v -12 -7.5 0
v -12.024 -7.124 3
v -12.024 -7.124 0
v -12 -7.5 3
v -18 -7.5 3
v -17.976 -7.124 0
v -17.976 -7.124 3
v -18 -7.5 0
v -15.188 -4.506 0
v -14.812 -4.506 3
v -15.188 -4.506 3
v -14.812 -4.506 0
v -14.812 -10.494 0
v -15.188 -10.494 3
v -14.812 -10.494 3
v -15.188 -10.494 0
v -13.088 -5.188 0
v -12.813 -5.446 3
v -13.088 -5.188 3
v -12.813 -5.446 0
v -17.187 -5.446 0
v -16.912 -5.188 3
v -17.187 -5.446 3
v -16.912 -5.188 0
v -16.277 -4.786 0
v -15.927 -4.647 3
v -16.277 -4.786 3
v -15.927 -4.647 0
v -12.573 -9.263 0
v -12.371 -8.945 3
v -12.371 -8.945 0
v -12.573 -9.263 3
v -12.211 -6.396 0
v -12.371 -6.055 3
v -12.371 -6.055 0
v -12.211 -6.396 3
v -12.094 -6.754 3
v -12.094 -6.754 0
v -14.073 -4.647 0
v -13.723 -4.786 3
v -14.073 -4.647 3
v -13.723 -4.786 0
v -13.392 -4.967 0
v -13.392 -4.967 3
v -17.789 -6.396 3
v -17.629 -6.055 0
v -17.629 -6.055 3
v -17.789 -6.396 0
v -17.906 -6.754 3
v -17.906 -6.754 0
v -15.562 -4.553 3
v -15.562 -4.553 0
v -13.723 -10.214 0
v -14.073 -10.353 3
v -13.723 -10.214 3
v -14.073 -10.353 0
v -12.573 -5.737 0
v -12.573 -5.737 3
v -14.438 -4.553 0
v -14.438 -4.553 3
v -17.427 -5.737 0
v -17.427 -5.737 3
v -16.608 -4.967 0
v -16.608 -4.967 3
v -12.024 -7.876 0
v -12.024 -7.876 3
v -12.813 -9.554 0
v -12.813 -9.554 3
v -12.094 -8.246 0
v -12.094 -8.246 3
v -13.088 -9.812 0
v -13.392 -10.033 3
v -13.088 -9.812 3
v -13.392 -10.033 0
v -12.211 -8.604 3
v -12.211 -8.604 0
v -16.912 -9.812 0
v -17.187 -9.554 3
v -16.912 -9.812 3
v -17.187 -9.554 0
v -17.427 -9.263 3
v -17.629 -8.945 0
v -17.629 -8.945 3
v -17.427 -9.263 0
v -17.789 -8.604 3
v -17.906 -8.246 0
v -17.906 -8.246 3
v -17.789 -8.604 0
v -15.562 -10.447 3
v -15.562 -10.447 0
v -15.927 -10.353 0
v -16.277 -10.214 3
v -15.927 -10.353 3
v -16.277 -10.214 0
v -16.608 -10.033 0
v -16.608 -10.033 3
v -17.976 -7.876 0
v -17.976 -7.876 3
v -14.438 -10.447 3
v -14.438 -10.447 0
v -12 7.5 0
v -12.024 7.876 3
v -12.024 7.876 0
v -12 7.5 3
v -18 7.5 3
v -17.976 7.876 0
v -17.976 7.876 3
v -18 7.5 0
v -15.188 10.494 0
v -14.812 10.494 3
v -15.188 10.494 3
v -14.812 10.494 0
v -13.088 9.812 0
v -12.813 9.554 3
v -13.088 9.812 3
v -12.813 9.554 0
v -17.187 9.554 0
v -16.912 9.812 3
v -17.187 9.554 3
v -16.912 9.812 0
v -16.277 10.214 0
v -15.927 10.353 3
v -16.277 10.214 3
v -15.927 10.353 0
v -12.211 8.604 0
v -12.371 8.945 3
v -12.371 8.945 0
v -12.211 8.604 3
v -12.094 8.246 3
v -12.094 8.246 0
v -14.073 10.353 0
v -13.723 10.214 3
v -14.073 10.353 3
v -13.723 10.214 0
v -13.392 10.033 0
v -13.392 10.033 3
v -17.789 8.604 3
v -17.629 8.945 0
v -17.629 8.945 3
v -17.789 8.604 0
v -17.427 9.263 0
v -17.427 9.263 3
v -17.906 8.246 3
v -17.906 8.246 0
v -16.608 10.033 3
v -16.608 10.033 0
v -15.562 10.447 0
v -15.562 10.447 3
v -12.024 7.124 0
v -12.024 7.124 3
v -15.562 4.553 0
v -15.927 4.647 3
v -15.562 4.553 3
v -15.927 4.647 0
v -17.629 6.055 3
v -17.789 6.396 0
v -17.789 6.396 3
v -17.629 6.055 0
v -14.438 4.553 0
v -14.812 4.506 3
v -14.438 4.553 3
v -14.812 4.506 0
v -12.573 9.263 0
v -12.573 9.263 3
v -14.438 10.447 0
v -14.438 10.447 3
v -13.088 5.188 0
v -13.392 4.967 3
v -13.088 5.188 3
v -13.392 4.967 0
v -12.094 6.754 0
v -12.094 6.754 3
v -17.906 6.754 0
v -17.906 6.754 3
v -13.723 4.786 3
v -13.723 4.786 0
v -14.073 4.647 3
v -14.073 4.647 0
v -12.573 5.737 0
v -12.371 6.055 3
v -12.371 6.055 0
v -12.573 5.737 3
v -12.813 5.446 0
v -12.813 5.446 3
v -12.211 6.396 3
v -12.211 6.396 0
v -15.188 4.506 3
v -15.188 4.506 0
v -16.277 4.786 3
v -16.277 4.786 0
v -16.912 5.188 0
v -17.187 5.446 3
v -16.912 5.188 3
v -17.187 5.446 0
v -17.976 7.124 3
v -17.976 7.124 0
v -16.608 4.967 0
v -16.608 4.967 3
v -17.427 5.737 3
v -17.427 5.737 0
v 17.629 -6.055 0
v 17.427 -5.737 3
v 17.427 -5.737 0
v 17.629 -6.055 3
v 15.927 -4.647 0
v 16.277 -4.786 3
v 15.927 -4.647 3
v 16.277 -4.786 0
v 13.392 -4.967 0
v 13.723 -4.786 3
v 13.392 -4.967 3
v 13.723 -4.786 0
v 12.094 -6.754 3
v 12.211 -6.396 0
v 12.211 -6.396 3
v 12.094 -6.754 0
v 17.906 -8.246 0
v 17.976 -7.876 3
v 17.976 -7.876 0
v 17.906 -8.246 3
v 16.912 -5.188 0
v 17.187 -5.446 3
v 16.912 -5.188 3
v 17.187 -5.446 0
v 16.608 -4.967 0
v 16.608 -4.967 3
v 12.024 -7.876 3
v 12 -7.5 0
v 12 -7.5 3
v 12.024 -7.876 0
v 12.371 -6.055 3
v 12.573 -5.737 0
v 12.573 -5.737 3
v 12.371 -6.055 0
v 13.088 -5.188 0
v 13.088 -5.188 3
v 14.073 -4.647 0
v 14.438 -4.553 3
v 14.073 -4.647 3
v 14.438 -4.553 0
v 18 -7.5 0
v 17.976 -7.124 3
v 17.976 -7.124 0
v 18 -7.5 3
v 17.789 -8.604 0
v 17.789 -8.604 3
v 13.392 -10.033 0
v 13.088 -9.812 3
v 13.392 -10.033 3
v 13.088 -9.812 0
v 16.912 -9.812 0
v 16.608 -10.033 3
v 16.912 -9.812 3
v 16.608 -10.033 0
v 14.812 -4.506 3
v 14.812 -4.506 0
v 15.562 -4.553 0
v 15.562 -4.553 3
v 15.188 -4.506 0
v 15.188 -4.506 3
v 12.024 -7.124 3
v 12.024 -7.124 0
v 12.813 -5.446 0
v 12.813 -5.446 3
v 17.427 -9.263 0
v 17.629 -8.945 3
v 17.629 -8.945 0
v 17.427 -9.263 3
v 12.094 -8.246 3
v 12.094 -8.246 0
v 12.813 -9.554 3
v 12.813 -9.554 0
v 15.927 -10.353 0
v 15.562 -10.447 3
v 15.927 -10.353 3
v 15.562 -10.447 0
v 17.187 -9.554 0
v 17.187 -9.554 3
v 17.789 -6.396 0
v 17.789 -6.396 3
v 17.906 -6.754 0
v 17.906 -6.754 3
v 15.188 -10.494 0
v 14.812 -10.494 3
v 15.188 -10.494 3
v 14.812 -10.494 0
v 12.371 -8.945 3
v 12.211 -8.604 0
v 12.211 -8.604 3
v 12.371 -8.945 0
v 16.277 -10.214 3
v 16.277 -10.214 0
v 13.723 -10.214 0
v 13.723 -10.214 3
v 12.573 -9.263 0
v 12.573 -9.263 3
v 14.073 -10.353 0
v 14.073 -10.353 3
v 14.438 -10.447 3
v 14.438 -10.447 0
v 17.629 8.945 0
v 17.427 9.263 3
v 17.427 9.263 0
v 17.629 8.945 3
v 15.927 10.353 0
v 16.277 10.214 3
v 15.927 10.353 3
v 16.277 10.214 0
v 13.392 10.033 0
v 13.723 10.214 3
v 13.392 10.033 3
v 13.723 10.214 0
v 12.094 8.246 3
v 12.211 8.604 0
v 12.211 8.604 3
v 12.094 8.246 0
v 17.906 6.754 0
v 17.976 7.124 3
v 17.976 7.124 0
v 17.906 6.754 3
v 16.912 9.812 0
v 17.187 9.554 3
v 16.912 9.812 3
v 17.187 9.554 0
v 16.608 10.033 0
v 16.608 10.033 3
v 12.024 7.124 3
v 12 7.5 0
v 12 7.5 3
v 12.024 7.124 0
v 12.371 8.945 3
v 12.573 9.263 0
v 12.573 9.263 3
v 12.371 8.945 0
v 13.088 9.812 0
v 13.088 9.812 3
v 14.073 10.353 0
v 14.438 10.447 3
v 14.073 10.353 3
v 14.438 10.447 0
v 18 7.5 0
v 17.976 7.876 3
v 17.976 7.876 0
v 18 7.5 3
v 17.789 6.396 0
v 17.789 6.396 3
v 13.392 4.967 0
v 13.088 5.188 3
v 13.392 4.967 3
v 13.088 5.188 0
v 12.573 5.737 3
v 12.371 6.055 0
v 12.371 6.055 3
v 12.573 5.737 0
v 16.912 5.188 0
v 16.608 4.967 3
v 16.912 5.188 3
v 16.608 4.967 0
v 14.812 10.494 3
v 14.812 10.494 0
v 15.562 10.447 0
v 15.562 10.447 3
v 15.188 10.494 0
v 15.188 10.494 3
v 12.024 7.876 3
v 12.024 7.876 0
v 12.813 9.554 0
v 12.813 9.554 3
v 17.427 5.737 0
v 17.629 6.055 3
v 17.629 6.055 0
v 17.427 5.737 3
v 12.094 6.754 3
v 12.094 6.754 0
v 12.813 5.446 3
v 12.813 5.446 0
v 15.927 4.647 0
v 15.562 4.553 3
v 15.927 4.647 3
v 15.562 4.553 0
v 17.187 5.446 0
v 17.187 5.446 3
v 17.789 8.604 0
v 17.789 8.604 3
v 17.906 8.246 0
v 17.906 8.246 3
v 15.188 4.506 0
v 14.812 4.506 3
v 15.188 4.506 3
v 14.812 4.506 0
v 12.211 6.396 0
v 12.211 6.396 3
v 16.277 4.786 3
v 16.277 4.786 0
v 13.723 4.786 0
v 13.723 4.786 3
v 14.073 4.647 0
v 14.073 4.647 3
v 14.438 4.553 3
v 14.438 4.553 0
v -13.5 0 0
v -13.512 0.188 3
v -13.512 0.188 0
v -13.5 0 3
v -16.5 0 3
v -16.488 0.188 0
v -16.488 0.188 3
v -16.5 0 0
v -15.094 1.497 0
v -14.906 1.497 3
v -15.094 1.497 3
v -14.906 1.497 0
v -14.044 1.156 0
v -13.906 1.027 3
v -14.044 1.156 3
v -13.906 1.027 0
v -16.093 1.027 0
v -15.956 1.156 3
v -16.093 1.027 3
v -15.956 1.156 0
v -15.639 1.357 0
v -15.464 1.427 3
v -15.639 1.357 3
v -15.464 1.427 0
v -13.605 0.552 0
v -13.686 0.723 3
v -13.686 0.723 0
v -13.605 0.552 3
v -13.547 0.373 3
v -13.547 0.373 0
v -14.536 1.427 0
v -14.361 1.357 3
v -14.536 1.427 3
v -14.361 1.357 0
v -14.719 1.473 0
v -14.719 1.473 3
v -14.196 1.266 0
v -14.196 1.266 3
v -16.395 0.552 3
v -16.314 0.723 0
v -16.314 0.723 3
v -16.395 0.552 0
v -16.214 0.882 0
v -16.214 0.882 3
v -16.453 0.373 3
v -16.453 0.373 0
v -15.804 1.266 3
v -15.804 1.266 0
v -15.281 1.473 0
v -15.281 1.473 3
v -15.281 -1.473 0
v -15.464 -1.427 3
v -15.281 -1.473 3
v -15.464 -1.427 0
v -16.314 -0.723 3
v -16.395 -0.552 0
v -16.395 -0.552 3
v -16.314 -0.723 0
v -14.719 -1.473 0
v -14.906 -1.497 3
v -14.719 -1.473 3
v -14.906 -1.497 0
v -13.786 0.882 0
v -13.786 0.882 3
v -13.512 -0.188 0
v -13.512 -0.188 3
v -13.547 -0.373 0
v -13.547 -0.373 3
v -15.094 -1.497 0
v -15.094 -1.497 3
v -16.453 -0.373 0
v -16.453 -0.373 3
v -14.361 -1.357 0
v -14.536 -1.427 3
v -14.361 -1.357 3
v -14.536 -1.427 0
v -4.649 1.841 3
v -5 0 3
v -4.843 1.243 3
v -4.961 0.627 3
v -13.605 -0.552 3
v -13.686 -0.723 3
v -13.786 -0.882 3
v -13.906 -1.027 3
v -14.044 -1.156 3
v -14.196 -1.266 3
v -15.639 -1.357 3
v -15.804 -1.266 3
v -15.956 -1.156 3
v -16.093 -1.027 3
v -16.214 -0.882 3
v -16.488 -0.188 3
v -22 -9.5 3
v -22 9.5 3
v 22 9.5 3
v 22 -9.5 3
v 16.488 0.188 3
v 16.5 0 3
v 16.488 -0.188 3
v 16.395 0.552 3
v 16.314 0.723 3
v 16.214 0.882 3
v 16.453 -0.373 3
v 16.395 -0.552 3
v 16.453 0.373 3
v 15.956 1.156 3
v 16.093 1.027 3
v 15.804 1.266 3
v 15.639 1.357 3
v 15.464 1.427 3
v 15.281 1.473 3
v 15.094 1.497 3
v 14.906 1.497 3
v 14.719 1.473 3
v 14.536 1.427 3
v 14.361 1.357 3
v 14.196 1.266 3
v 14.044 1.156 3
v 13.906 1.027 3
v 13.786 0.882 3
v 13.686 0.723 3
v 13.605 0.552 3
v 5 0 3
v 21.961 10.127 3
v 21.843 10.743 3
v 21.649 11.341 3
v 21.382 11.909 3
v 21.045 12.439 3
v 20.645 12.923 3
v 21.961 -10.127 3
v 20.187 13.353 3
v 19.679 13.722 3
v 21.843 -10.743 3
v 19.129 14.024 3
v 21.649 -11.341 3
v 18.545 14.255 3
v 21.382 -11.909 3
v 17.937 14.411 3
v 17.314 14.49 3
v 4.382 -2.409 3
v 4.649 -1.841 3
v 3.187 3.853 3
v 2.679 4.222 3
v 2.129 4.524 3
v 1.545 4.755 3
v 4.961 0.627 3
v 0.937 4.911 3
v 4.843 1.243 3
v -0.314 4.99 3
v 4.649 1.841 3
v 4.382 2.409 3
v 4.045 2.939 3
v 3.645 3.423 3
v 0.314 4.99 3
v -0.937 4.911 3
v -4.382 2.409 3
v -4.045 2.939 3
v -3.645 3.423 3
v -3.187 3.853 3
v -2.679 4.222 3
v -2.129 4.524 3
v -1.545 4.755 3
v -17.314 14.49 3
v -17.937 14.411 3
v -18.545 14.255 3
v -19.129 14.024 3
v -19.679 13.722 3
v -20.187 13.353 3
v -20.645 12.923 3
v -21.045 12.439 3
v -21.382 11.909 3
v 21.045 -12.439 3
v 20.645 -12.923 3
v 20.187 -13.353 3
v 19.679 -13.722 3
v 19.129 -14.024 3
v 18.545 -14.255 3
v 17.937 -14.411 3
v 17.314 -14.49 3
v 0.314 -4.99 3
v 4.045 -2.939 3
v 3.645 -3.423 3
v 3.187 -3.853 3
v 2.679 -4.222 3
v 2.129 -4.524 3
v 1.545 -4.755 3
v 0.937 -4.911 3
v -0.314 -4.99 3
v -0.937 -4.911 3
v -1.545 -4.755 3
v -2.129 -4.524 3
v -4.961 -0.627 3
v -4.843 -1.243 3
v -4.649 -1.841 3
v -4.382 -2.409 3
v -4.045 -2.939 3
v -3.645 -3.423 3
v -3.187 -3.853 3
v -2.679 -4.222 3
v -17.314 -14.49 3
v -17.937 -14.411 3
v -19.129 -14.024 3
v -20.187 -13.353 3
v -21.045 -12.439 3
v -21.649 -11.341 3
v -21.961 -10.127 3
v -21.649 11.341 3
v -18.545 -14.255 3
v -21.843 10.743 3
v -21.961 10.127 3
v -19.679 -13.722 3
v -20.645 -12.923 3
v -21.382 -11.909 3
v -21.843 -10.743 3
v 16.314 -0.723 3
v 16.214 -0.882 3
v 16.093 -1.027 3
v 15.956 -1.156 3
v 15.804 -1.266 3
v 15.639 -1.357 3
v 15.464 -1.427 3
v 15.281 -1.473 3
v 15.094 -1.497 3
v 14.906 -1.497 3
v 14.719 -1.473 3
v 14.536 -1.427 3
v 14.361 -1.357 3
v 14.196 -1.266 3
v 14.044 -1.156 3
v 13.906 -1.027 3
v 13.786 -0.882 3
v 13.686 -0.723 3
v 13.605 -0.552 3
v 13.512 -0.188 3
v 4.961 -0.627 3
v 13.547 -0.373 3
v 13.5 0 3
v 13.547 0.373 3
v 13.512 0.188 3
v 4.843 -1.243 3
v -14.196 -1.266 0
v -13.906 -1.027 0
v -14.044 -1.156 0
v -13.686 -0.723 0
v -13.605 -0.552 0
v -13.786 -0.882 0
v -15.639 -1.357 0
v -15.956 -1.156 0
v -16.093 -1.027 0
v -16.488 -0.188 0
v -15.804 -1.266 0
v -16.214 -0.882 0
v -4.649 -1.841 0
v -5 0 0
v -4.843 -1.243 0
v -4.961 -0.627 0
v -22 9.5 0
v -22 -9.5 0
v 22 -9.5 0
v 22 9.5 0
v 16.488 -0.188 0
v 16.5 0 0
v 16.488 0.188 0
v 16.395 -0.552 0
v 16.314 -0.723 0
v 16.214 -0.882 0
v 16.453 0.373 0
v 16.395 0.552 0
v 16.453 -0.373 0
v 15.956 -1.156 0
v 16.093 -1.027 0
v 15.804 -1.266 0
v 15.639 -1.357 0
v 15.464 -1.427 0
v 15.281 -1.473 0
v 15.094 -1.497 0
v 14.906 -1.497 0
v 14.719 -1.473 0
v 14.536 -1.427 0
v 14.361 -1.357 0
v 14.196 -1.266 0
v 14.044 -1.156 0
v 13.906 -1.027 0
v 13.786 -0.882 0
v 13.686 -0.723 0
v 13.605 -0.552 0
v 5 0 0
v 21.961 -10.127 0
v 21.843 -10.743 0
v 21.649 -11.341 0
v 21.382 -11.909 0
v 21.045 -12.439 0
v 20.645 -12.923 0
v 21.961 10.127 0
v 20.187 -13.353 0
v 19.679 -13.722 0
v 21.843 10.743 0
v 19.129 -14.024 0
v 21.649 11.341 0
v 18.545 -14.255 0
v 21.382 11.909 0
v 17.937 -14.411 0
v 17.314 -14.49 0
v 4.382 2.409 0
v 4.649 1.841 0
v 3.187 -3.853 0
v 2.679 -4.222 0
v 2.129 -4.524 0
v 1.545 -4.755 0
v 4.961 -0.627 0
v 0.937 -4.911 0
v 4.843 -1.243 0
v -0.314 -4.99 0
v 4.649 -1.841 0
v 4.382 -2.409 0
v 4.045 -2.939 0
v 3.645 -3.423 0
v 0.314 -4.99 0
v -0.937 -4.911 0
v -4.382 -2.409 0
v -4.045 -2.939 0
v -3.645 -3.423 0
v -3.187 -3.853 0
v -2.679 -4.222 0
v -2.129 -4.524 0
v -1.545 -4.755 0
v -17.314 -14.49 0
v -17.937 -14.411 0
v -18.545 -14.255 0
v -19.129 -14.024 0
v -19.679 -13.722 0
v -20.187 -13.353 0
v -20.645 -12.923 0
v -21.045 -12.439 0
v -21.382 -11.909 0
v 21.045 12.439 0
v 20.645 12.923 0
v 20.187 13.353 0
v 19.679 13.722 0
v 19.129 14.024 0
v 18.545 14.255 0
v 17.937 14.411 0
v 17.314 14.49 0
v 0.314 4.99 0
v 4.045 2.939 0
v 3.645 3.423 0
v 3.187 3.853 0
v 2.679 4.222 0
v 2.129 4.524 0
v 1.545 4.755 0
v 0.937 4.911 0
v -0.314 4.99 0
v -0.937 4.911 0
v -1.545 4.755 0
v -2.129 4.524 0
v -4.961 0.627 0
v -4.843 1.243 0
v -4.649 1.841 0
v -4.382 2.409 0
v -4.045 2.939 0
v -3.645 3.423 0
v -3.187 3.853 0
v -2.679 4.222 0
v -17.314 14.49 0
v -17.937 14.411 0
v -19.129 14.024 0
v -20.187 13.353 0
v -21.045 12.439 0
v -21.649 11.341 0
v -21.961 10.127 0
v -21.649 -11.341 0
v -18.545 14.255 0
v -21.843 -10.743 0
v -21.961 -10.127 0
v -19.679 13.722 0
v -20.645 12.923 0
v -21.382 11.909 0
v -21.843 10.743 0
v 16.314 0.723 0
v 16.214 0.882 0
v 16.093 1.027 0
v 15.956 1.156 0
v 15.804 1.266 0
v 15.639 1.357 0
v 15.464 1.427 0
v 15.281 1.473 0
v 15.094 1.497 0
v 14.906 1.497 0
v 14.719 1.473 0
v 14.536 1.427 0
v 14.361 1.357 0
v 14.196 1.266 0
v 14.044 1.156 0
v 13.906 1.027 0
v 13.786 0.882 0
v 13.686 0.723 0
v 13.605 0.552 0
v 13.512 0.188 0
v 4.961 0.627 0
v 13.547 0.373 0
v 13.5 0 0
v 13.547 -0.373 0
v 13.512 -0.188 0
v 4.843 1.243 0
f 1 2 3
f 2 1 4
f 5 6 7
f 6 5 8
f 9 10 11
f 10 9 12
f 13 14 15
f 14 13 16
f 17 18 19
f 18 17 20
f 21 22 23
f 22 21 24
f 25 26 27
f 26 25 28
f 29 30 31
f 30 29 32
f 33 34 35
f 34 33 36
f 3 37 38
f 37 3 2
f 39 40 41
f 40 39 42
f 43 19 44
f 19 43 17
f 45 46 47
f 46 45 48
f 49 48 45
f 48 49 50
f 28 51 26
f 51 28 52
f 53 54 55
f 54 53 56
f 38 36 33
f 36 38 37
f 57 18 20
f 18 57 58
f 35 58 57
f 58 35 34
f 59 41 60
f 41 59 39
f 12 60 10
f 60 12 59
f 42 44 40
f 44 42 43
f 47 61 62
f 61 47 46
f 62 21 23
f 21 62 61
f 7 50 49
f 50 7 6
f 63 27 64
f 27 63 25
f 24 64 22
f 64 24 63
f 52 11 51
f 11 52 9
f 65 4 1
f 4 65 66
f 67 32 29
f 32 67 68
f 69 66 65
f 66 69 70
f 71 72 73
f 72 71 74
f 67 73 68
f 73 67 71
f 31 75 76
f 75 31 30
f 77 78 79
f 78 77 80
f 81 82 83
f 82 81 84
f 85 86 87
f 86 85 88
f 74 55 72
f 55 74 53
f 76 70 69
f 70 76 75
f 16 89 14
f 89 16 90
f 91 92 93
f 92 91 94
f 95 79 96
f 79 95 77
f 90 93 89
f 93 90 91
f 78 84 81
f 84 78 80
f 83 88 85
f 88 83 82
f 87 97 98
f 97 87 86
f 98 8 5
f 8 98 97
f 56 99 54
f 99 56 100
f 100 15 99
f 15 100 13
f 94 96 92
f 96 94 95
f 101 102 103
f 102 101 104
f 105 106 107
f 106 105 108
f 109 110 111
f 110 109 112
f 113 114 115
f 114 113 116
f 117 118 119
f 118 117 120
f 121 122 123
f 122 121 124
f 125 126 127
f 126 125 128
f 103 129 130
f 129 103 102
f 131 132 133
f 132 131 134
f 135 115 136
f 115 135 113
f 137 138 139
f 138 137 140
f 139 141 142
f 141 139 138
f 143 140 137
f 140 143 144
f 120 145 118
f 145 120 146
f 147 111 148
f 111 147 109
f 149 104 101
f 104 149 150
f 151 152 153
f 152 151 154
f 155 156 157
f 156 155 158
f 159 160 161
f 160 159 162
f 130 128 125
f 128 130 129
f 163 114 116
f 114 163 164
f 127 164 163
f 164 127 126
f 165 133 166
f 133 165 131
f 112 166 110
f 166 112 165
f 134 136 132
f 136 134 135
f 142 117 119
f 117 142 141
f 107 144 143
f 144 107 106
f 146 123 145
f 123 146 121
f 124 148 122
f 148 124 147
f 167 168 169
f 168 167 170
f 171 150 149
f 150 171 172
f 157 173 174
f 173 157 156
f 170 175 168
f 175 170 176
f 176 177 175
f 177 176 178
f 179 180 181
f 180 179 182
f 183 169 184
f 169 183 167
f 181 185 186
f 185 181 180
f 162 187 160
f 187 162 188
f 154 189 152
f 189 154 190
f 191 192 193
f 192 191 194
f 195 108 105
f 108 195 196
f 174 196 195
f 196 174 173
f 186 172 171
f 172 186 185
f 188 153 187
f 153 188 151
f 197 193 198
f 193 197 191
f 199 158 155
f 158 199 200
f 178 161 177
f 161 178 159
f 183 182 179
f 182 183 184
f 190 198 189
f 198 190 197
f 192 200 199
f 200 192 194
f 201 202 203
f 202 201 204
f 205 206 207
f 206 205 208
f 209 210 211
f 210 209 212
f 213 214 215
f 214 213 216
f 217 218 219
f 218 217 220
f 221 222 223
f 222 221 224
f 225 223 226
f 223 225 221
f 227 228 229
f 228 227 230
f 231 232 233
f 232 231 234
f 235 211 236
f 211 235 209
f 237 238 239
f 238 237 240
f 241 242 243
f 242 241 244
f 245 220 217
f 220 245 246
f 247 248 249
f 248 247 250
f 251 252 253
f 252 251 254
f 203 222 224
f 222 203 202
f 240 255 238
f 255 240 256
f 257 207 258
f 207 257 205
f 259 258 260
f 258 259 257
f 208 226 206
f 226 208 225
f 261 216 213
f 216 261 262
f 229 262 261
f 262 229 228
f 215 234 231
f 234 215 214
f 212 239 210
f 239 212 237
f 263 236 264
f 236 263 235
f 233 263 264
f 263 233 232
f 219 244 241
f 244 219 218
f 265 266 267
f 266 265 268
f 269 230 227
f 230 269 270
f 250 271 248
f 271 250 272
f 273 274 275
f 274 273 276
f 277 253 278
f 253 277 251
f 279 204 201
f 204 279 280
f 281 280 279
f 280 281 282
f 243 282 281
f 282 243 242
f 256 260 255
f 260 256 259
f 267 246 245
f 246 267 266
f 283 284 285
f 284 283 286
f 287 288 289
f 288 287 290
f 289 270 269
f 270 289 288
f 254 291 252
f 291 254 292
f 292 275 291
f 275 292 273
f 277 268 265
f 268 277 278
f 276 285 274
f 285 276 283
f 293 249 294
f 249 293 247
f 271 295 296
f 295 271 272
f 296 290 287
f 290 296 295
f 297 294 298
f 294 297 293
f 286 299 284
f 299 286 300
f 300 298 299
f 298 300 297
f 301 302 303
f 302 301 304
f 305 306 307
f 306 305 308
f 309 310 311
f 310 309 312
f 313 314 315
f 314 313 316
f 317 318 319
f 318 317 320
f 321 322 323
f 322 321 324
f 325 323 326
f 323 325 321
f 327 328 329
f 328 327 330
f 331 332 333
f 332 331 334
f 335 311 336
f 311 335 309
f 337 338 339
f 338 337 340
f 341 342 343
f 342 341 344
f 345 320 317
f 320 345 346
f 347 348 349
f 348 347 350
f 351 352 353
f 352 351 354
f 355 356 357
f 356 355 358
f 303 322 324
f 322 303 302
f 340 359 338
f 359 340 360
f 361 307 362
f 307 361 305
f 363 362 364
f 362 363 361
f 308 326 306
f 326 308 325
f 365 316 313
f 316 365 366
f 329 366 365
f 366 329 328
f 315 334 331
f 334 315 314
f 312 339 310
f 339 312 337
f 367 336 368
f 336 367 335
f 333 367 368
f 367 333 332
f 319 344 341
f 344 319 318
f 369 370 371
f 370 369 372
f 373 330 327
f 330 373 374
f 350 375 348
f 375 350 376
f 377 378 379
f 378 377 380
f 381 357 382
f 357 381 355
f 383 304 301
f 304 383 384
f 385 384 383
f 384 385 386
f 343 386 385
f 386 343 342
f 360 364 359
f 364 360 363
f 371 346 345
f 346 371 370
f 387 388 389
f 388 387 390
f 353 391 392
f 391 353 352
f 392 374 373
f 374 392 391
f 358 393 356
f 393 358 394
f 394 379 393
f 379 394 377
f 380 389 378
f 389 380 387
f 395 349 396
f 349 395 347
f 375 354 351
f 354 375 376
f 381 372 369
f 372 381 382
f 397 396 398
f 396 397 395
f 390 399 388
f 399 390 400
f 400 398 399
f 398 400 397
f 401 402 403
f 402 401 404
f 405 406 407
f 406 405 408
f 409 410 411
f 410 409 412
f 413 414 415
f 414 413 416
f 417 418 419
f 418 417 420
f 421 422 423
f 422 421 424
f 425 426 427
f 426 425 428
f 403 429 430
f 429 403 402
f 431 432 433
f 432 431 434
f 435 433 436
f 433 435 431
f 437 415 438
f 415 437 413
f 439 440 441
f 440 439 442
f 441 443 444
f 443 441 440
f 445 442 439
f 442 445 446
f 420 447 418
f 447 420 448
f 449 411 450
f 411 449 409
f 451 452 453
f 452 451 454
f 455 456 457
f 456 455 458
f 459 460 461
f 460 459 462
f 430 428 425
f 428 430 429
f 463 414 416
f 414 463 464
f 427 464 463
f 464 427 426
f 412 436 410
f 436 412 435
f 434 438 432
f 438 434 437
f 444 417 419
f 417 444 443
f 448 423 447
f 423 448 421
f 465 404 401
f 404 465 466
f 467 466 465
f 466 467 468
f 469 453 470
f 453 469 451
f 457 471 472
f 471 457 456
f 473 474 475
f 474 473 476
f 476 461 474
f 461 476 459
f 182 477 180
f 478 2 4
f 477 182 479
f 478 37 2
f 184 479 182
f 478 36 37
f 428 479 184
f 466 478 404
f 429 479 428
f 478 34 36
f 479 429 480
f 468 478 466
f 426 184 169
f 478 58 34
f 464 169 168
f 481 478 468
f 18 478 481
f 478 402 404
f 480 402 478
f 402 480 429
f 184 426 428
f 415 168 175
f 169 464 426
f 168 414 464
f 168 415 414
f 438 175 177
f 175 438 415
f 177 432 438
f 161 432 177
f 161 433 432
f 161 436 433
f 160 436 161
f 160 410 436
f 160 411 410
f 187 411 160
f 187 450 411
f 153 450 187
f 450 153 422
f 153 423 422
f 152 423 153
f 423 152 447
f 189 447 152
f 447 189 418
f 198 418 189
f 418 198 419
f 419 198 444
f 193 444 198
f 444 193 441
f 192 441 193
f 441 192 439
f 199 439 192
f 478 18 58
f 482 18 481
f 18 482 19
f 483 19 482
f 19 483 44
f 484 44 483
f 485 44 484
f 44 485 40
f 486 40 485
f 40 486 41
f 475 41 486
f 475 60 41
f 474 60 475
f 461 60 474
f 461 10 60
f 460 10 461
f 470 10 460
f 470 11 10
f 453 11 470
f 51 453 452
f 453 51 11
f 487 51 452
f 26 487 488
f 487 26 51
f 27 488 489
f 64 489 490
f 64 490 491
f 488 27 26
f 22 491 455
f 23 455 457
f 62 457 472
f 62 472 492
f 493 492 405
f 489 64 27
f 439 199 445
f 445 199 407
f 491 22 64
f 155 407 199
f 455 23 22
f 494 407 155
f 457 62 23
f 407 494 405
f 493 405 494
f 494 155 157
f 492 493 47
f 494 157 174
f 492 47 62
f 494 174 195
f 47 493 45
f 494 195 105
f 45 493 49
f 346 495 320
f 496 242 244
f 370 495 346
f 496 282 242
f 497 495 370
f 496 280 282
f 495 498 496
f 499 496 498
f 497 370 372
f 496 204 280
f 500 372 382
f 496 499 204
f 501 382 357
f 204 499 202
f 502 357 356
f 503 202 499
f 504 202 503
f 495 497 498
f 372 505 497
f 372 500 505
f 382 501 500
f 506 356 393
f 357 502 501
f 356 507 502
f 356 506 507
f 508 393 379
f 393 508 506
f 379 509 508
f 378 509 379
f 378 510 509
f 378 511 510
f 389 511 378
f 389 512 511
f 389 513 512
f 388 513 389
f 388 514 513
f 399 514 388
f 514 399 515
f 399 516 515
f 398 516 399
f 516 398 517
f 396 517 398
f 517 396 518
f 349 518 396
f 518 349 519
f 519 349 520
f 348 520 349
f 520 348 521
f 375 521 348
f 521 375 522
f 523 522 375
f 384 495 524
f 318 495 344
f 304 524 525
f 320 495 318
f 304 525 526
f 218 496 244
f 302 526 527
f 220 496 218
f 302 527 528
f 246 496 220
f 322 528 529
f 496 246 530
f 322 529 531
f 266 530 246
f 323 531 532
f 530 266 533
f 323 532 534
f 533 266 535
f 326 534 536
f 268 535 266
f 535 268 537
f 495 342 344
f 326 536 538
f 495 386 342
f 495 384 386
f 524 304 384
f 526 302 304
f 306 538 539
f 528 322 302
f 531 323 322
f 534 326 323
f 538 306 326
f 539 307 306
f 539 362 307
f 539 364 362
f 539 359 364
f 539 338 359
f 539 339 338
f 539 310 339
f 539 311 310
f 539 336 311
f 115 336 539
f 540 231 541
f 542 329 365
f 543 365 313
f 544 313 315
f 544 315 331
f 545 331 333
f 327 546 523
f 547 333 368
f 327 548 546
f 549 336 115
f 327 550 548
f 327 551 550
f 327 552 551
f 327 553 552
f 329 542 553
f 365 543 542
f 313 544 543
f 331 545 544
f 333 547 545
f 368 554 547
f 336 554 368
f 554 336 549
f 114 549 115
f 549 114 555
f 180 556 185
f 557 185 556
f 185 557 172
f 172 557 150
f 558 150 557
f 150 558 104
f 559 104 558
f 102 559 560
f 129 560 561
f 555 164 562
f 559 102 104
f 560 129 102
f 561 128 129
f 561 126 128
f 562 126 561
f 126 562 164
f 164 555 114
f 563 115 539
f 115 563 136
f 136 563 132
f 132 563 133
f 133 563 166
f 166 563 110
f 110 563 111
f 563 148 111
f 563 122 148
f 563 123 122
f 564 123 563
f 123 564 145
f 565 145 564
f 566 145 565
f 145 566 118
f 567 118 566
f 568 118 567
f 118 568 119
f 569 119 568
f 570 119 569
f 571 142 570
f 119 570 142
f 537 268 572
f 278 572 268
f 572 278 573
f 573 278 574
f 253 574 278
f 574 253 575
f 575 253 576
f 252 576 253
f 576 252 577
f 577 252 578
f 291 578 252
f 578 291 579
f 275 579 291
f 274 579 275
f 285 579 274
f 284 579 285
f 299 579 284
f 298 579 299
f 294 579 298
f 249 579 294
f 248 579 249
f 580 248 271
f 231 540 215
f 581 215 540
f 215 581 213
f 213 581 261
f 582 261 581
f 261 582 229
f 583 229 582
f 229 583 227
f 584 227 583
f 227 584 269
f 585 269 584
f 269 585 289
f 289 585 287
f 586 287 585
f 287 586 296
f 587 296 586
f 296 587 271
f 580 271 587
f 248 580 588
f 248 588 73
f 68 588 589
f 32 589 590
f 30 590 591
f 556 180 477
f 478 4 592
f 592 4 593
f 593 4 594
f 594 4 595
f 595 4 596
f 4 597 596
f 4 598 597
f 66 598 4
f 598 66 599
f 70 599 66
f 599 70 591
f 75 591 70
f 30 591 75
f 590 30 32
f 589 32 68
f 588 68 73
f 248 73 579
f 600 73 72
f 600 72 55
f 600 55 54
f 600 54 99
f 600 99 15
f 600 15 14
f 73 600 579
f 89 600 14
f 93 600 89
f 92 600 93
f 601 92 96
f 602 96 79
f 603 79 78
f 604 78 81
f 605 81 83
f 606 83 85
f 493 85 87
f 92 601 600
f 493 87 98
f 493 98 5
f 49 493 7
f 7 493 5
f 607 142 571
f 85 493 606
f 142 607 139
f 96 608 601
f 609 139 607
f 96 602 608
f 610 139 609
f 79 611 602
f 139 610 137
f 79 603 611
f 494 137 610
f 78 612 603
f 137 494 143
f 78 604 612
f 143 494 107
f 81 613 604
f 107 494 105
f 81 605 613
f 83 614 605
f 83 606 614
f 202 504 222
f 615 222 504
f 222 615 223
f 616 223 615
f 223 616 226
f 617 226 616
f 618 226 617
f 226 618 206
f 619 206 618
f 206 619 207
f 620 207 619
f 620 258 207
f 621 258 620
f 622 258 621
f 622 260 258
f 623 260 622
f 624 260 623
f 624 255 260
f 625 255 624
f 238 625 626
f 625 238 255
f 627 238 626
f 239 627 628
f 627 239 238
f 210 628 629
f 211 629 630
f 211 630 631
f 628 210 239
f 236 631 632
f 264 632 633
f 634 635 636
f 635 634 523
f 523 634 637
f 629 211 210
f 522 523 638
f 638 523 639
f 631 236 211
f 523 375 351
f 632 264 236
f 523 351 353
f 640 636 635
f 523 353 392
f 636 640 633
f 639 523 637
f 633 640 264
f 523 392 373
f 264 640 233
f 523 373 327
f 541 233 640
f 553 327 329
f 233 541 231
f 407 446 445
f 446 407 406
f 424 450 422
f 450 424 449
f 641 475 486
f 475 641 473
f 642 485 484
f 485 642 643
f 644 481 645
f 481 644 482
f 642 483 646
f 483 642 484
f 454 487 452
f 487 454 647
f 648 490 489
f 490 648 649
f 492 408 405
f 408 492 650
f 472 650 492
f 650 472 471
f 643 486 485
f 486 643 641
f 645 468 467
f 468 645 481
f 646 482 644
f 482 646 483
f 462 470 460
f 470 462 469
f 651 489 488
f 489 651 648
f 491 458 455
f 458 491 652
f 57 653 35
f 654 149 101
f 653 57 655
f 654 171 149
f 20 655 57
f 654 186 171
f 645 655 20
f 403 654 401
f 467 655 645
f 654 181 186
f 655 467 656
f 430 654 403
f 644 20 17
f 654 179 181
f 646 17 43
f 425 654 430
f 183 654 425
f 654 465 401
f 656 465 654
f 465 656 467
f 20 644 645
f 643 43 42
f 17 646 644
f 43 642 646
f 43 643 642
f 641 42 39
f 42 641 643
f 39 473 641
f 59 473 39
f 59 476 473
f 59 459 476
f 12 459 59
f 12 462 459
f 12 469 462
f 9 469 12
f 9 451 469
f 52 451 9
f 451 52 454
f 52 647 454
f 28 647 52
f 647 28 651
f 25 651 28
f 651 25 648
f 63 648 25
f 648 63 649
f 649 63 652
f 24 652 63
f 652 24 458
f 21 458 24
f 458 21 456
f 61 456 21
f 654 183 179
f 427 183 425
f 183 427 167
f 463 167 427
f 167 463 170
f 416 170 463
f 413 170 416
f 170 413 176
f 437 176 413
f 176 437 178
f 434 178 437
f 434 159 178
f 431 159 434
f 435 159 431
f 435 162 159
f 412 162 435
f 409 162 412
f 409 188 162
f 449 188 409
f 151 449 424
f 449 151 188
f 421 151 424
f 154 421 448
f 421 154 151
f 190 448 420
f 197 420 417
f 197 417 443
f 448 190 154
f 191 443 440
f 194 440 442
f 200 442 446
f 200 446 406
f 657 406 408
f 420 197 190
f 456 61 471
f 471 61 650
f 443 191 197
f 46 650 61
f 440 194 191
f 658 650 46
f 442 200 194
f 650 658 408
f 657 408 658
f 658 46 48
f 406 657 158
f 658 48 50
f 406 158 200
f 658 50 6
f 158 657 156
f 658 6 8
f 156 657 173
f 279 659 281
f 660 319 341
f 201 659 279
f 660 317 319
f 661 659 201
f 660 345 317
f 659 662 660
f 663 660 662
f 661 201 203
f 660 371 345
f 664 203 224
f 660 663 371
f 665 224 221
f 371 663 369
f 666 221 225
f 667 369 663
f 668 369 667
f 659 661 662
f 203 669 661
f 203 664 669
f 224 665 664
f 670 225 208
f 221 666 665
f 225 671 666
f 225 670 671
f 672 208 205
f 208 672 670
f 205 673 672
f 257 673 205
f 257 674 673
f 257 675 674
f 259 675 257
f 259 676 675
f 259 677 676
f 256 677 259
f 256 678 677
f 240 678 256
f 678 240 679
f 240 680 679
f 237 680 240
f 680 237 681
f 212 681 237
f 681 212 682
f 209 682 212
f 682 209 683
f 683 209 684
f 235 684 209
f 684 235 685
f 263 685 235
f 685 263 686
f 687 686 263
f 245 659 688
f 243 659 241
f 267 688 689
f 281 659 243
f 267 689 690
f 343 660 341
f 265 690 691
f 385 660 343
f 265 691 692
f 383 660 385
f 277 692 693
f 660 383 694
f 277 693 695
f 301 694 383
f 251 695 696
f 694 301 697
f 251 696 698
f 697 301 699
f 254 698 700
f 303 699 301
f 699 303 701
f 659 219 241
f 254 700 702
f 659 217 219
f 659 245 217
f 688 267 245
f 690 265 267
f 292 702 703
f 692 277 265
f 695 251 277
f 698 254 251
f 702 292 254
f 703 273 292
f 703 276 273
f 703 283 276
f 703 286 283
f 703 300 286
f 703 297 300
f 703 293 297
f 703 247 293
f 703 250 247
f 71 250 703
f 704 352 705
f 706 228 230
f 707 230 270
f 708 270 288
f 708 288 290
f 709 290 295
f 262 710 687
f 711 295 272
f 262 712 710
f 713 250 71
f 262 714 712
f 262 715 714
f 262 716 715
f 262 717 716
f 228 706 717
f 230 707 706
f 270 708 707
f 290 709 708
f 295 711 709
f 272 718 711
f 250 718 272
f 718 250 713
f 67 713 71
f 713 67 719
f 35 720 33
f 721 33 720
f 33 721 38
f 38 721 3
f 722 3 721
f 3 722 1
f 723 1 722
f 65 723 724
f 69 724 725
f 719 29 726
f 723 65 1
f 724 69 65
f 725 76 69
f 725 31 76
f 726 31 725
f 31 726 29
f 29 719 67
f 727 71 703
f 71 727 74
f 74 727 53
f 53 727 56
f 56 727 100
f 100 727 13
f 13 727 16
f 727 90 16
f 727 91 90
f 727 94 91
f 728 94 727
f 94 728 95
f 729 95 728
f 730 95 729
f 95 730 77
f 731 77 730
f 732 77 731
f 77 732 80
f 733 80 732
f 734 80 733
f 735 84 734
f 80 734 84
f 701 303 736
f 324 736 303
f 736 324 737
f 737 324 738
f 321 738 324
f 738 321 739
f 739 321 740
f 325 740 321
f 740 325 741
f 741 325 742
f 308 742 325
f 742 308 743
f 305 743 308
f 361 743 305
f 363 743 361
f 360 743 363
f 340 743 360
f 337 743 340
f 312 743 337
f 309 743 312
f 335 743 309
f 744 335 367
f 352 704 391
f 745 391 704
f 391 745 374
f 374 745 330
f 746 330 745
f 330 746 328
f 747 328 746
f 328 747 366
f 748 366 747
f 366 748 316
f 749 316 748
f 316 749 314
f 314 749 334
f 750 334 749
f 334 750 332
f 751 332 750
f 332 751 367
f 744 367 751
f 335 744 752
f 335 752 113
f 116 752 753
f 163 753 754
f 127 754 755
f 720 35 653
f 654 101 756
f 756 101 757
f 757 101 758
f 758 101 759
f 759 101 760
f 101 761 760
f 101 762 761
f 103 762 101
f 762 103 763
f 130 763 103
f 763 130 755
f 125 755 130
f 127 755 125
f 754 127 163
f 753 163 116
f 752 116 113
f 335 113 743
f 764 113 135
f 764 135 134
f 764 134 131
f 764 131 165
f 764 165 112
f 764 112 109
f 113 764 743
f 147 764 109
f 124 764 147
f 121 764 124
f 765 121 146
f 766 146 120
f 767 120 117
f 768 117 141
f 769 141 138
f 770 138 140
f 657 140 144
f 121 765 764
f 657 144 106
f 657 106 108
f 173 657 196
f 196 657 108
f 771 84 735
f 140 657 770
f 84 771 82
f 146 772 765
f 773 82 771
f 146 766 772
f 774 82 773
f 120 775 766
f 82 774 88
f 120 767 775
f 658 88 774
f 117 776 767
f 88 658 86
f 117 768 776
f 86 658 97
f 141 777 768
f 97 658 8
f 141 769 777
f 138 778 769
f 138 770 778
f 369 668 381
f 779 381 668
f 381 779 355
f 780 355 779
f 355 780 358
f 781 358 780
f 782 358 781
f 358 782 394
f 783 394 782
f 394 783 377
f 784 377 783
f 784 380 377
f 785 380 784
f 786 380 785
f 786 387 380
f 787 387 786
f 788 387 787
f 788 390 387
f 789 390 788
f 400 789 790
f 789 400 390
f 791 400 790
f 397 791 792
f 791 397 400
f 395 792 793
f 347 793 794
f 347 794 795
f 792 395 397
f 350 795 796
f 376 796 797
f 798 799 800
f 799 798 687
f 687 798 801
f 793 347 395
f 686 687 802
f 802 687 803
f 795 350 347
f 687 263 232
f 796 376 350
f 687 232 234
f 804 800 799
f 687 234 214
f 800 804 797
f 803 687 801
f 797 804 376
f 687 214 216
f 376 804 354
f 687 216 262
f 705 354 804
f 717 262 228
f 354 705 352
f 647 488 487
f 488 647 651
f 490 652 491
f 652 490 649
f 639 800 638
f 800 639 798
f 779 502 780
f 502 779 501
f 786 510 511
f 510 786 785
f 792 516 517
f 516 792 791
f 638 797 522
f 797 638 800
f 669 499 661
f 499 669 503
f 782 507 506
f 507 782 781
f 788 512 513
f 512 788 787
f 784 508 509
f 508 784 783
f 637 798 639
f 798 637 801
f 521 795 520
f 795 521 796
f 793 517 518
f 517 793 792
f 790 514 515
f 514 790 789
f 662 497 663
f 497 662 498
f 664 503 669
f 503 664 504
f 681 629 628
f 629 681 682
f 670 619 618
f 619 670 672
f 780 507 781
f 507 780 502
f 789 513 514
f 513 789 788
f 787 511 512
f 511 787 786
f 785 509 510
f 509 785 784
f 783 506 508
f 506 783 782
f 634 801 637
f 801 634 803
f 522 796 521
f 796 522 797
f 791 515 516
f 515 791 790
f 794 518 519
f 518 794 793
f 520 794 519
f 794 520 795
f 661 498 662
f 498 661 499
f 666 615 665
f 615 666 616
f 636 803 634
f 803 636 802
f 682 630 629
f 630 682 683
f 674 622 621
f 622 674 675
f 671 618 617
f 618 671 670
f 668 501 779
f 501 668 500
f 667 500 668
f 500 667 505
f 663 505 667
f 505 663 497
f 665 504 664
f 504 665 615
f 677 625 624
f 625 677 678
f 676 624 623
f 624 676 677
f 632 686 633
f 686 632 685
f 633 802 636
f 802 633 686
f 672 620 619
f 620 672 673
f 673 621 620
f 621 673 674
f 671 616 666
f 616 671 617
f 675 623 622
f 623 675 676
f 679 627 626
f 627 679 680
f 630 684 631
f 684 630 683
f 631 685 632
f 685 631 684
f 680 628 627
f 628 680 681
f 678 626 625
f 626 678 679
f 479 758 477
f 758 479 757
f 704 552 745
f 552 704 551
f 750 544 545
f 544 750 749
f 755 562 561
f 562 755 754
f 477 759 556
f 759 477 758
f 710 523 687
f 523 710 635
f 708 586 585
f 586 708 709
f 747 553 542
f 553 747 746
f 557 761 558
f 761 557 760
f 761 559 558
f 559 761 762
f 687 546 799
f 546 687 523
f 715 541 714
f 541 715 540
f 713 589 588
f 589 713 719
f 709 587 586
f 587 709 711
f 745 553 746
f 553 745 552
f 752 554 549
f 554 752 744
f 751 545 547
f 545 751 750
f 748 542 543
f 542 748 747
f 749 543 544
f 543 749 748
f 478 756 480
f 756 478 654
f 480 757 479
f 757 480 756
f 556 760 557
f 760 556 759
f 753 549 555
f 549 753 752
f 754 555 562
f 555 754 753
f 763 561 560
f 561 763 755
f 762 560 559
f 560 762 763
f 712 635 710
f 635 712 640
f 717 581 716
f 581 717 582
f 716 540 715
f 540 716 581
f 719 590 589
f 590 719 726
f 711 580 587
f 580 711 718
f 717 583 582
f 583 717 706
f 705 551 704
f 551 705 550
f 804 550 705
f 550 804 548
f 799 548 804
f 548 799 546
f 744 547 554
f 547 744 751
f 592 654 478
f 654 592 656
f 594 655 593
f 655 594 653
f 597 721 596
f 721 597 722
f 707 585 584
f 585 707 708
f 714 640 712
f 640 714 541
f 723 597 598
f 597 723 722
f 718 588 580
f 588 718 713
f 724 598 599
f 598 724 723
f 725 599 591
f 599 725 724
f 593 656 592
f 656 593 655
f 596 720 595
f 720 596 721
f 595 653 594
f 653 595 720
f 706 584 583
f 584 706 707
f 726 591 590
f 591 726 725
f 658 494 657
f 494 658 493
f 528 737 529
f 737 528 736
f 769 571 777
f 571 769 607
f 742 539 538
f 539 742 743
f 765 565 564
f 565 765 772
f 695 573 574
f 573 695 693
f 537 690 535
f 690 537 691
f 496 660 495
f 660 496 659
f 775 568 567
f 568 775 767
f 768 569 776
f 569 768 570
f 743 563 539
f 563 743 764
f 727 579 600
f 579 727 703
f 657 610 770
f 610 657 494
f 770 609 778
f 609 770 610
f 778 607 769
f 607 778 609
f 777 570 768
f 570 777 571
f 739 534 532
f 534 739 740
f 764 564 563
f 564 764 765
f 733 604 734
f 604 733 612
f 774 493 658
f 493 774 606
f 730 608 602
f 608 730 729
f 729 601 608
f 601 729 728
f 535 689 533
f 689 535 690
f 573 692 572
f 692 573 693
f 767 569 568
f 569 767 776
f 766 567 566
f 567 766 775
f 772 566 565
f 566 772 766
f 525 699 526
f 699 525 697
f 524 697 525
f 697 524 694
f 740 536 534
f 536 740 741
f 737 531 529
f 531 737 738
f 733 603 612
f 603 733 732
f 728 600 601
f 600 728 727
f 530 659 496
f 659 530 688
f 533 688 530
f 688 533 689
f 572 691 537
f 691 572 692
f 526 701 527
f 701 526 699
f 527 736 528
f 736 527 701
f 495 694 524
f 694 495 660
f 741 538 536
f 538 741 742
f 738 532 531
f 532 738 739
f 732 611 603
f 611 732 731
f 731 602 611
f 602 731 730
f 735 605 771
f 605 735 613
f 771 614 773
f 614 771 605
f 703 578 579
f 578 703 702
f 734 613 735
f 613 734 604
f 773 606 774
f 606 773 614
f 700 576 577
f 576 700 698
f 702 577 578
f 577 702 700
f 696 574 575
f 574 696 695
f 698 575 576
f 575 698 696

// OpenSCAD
$fn = 50;


difference() {
	union() {
		hull() {
			translate(v = [-17.0000000000, 9.5000000000, 0]) {
				cylinder(h = 3, r = 5);
			}
			translate(v = [17.0000000000, 9.5000000000, 0]) {
				cylinder(h = 3, r = 5);
			}
			translate(v = [-17.0000000000, -9.5000000000, 0]) {
				cylinder(h = 3, r = 5);
			}
			translate(v = [17.0000000000, -9.5000000000, 0]) {
				cylinder(h = 3, r = 5);
			}
		}
	}
	union() {
		#translate(v = [-15.0000000000, -7.5000000000, 0]) {
			cylinder(h = 3, r = 3.0000000000);
		}
		#translate(v = [-15.0000000000, 7.5000000000, 0]) {
			cylinder(h = 3, r = 3.0000000000);
		}
		#translate(v = [15.0000000000, -7.5000000000, 0]) {
			cylinder(h = 3, r = 3.0000000000);
		}
		#translate(v = [15.0000000000, 7.5000000000, 0]) {
			cylinder(h = 3, r = 3.0000000000);
		}
		#translate(v = [-15.0000000000, -7.5000000000, -100.0000000000]) {
			cylinder(h = 200, r = 3.0000000000);
		}
		#translate(v = [-15.0000000000, 7.5000000000, -100.0000000000]) {
			cylinder(h = 200, r = 3.0000000000);
		}
		#translate(v = [15.0000000000, -7.5000000000, -100.0000000000]) {
			cylinder(h = 200, r = 3.0000000000);
		}
		#translate(v = [15.0000000000, 7.5000000000, -100.0000000000]) {
			cylinder(h = 200, r = 3.0000000000);
		}
		#translate(v = [-15.0000000000, -7.5000000000, 0]) {
			cylinder(h = 3, r = 1.5000000000);
		}
		#translate(v = [-15.0000000000, 0.0000000000, 0]) {
			cylinder(h = 3, r = 1.5000000000);
		}
		#translate(v = [-15.0000000000, 7.5000000000, 0]) {
			cylinder(h = 3, r = 1.5000000000);
		}
		#translate(v = [15.0000000000, -7.5000000000, 0]) {
			cylinder(h = 3, r = 1.5000000000);
		}
		#translate(v = [15.0000000000, 0.0000000000, 0]) {
			cylinder(h = 3, r = 1.5000000000);
		}
		#translate(v = [15.0000000000, 7.5000000000, 0]) {
			cylinder(h = 3, r = 1.5000000000);
		}
		#translate(v = [-15.0000000000, -7.5000000000, 0]) {
			cylinder(h = 3, r = 1.5000000000);
		}
		#translate(v = [-15.0000000000, 0.0000000000, 0]) {
			cylinder(h = 3, r = 1.5000000000);
		}
		#translate(v = [-15.0000000000, 7.5000000000, 0]) {
			cylinder(h = 3, r = 1.5000000000);
		}
		#translate(v = [15.0000000000, -7.5000000000, 0]) {
			cylinder(h = 3, r = 1.5000000000);
		}
		#translate(v = [15.0000000000, 0.0000000000, 0]) {
			cylinder(h = 3, r = 1.5000000000);
		}
		#translate(v = [15.0000000000, 7.5000000000, 0]) {
			cylinder(h = 3, r = 1.5000000000);
		}
		#translate(v = [-15.0000000000, -7.5000000000, 0]) {
			cylinder(h = 3, r = 1.5000000000);
		}
		#translate(v = [-15.0000000000, 0.0000000000, 0]) {
			cylinder(h = 3, r = 1.5000000000);
		}
		#translate(v = [-15.0000000000, 7.5000000000, 0]) {
			cylinder(h = 3, r = 1.5000000000);
		}
		#translate(v = [15.0000000000, -7.5000000000, 0]) {
			cylinder(h = 3, r = 1.5000000000);
		}
		#translate(v = [15.0000000000, 0.0000000000, 0]) {
			cylinder(h = 3, r = 1.5000000000);
		}
		#translate(v = [15.0000000000, 7.5000000000, 0]) {
			cylinder(h = 3, r = 1.5000000000);
		}
		#cylinder(h = 3, r = 5.0000000000);
	}
}
